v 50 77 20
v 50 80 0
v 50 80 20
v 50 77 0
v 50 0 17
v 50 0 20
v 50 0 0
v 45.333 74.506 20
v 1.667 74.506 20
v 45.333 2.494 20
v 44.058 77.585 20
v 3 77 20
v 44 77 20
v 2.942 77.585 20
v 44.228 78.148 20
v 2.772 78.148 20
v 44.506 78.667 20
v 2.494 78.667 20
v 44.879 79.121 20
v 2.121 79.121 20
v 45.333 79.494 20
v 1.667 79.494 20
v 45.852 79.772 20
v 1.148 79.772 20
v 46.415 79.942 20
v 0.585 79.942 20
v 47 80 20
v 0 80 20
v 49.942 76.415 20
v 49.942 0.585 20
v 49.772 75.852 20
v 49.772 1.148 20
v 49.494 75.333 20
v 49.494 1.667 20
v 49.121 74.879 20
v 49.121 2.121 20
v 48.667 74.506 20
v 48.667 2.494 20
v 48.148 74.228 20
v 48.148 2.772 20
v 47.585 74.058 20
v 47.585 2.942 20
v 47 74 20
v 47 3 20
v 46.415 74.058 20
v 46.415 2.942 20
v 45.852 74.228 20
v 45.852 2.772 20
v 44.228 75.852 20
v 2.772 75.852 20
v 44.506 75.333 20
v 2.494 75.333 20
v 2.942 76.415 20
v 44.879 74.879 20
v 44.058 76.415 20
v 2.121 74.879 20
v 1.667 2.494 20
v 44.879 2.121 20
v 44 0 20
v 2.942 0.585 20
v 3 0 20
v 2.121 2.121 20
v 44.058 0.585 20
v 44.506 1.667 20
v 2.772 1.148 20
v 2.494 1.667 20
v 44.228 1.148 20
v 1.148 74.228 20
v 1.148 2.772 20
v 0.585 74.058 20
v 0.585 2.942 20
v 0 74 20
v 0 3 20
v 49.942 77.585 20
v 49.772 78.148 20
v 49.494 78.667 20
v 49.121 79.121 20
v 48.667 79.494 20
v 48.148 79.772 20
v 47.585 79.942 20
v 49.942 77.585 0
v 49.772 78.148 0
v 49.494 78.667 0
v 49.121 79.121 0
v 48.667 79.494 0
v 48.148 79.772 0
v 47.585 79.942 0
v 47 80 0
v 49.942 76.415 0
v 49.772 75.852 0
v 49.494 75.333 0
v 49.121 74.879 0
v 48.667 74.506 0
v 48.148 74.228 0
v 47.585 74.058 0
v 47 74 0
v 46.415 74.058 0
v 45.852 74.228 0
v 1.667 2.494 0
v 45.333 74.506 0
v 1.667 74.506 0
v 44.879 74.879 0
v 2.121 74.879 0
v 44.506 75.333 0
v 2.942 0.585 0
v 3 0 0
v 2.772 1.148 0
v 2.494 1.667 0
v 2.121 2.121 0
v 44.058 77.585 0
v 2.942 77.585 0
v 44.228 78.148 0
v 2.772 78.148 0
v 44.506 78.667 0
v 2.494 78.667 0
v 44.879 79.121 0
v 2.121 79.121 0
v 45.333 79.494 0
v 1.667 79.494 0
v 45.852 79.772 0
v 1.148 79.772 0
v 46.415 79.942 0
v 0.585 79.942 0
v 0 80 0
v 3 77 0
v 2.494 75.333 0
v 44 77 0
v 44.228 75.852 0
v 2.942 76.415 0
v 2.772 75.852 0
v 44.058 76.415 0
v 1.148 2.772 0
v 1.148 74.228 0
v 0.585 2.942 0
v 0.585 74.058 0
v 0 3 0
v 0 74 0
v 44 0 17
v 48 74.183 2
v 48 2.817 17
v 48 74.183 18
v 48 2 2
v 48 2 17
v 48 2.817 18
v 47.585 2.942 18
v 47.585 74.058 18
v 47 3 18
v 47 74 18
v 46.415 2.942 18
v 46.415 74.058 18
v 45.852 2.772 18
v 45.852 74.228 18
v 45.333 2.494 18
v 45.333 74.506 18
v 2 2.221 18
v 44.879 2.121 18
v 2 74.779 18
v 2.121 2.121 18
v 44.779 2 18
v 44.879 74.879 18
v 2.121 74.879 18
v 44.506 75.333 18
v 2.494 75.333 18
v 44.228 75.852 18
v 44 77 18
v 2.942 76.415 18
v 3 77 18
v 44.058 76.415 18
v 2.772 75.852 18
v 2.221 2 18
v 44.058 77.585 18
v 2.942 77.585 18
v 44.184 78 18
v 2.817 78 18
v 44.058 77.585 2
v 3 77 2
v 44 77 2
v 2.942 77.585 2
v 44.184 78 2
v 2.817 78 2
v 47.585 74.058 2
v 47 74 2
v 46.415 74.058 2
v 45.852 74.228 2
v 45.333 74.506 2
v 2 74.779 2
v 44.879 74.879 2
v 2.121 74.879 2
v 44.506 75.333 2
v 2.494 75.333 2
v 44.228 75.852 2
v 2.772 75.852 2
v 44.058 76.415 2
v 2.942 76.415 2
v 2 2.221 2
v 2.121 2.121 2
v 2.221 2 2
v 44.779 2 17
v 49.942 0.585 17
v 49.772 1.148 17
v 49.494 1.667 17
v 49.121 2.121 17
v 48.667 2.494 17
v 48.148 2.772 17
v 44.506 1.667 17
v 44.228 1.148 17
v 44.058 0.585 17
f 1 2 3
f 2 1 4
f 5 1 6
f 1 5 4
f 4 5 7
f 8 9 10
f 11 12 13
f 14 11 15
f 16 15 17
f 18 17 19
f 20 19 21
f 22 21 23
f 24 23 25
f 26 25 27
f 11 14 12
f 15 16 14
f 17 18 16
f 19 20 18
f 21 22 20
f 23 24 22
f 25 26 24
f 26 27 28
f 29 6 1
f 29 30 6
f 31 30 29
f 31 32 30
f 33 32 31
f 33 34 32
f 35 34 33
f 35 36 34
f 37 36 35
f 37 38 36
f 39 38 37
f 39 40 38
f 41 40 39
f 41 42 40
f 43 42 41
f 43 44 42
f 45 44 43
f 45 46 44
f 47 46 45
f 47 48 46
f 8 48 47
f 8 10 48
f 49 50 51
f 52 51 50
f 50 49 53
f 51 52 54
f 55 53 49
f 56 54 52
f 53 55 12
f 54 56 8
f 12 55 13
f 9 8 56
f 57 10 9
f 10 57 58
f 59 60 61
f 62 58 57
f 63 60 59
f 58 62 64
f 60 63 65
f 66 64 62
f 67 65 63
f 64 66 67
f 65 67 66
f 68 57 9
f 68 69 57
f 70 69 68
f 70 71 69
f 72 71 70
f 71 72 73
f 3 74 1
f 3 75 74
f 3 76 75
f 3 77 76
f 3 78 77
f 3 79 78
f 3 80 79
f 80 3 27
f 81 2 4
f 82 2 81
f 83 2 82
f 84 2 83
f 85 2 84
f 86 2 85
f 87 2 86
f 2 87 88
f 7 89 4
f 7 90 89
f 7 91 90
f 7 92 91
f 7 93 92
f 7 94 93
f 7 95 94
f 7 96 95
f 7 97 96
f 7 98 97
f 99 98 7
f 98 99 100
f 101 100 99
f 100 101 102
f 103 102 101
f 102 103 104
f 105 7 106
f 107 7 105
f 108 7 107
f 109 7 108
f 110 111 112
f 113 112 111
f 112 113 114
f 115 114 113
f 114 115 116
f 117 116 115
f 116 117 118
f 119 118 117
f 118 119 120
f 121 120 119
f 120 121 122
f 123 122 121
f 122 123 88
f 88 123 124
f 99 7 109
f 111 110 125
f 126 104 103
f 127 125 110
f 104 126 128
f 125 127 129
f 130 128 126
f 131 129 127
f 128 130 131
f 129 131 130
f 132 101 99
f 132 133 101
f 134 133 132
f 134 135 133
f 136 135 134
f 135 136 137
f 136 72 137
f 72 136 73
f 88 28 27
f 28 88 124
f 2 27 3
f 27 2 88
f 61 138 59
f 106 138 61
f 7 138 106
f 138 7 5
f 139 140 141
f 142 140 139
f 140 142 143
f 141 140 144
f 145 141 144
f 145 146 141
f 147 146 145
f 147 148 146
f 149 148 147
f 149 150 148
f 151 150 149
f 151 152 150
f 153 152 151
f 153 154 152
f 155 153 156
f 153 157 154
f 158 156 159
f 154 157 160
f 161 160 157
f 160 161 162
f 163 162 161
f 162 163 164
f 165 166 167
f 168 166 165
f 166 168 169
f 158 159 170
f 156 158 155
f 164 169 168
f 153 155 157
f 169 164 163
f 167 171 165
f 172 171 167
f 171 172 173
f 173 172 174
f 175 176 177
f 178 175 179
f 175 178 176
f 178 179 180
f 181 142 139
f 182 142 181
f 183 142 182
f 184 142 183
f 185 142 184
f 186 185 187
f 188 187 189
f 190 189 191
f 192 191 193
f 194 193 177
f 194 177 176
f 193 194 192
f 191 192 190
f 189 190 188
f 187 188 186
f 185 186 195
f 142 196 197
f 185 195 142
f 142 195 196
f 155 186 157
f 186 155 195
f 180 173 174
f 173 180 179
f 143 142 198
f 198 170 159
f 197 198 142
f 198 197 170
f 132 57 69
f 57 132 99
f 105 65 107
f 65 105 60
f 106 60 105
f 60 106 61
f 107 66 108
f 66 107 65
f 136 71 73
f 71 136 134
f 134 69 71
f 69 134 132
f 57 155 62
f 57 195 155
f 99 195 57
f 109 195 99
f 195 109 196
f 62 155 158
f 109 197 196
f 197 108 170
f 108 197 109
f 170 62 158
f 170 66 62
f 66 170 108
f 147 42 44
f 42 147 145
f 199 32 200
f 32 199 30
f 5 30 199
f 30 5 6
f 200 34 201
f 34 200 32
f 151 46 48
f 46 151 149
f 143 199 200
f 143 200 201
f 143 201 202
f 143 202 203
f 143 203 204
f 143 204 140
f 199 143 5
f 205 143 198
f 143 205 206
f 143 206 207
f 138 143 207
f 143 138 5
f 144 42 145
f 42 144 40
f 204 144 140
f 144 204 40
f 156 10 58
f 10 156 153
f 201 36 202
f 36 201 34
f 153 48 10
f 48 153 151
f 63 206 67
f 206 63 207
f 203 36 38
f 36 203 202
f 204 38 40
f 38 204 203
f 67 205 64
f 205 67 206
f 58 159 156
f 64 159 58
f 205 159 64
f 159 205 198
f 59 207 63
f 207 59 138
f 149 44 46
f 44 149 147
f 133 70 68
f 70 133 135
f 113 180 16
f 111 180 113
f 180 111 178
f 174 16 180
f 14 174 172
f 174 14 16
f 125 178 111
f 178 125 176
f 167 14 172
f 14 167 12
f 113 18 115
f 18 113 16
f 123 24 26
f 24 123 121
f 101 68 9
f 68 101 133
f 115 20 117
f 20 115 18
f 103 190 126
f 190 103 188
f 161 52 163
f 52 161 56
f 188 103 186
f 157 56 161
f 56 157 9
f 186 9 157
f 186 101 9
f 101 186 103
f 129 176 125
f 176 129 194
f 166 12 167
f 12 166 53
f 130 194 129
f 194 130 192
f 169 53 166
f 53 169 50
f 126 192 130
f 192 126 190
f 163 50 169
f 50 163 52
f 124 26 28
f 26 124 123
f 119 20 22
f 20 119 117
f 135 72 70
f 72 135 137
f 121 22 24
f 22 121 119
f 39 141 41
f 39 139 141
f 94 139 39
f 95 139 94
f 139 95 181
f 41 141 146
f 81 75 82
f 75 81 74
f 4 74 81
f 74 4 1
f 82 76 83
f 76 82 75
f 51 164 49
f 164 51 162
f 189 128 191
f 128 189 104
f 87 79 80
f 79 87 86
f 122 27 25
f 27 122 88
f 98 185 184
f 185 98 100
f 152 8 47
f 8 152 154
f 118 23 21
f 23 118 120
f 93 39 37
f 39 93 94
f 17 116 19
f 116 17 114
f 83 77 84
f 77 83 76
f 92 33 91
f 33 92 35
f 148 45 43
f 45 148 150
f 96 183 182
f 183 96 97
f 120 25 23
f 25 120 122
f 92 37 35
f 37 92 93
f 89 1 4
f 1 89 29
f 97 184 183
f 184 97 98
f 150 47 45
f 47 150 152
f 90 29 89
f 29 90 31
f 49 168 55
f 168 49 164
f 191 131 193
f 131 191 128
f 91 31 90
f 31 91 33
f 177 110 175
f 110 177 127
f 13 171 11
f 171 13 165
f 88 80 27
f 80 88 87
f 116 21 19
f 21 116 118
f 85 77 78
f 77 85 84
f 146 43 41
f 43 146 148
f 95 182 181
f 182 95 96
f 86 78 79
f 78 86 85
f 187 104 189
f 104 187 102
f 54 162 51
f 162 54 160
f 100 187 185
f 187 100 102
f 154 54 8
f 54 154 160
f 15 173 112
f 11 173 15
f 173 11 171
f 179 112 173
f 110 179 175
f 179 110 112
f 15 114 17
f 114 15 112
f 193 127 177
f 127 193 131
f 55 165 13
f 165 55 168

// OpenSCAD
// Frame Structure Parameters
frame_width = 50;
frame_height = 80;
frame_depth = 20;
wall_thickness = 2;
corner_radius = 3;

module frame(width, height, depth, thickness, radius) {
  difference() {
    cube([width, height, depth]);
    translate([thickness, thickness, thickness])
      cube([width - 2 * thickness, height - 2 * thickness, depth - 2 * thickness]);
    translate([0, 0, 0])
      cylinder(r=radius, h=height, $fn=32);
    translate([width - radius, 0, depth - radius])
      cylinder(r=radius, h=height, $fn=32);
    translate([0, height - radius, 0])
      cylinder(r=radius, h=width, $fn=32);
    translate([width - radius, height - radius, 0])
      cylinder(r=radius, h=depth, $fn=32);
    translate([0, 0, depth - radius])
      cylinder(r=radius, h=width, $fn=32);
  }
}

frame(frame_width, frame_height, frame_depth, wall_thickness, corner_radius);
